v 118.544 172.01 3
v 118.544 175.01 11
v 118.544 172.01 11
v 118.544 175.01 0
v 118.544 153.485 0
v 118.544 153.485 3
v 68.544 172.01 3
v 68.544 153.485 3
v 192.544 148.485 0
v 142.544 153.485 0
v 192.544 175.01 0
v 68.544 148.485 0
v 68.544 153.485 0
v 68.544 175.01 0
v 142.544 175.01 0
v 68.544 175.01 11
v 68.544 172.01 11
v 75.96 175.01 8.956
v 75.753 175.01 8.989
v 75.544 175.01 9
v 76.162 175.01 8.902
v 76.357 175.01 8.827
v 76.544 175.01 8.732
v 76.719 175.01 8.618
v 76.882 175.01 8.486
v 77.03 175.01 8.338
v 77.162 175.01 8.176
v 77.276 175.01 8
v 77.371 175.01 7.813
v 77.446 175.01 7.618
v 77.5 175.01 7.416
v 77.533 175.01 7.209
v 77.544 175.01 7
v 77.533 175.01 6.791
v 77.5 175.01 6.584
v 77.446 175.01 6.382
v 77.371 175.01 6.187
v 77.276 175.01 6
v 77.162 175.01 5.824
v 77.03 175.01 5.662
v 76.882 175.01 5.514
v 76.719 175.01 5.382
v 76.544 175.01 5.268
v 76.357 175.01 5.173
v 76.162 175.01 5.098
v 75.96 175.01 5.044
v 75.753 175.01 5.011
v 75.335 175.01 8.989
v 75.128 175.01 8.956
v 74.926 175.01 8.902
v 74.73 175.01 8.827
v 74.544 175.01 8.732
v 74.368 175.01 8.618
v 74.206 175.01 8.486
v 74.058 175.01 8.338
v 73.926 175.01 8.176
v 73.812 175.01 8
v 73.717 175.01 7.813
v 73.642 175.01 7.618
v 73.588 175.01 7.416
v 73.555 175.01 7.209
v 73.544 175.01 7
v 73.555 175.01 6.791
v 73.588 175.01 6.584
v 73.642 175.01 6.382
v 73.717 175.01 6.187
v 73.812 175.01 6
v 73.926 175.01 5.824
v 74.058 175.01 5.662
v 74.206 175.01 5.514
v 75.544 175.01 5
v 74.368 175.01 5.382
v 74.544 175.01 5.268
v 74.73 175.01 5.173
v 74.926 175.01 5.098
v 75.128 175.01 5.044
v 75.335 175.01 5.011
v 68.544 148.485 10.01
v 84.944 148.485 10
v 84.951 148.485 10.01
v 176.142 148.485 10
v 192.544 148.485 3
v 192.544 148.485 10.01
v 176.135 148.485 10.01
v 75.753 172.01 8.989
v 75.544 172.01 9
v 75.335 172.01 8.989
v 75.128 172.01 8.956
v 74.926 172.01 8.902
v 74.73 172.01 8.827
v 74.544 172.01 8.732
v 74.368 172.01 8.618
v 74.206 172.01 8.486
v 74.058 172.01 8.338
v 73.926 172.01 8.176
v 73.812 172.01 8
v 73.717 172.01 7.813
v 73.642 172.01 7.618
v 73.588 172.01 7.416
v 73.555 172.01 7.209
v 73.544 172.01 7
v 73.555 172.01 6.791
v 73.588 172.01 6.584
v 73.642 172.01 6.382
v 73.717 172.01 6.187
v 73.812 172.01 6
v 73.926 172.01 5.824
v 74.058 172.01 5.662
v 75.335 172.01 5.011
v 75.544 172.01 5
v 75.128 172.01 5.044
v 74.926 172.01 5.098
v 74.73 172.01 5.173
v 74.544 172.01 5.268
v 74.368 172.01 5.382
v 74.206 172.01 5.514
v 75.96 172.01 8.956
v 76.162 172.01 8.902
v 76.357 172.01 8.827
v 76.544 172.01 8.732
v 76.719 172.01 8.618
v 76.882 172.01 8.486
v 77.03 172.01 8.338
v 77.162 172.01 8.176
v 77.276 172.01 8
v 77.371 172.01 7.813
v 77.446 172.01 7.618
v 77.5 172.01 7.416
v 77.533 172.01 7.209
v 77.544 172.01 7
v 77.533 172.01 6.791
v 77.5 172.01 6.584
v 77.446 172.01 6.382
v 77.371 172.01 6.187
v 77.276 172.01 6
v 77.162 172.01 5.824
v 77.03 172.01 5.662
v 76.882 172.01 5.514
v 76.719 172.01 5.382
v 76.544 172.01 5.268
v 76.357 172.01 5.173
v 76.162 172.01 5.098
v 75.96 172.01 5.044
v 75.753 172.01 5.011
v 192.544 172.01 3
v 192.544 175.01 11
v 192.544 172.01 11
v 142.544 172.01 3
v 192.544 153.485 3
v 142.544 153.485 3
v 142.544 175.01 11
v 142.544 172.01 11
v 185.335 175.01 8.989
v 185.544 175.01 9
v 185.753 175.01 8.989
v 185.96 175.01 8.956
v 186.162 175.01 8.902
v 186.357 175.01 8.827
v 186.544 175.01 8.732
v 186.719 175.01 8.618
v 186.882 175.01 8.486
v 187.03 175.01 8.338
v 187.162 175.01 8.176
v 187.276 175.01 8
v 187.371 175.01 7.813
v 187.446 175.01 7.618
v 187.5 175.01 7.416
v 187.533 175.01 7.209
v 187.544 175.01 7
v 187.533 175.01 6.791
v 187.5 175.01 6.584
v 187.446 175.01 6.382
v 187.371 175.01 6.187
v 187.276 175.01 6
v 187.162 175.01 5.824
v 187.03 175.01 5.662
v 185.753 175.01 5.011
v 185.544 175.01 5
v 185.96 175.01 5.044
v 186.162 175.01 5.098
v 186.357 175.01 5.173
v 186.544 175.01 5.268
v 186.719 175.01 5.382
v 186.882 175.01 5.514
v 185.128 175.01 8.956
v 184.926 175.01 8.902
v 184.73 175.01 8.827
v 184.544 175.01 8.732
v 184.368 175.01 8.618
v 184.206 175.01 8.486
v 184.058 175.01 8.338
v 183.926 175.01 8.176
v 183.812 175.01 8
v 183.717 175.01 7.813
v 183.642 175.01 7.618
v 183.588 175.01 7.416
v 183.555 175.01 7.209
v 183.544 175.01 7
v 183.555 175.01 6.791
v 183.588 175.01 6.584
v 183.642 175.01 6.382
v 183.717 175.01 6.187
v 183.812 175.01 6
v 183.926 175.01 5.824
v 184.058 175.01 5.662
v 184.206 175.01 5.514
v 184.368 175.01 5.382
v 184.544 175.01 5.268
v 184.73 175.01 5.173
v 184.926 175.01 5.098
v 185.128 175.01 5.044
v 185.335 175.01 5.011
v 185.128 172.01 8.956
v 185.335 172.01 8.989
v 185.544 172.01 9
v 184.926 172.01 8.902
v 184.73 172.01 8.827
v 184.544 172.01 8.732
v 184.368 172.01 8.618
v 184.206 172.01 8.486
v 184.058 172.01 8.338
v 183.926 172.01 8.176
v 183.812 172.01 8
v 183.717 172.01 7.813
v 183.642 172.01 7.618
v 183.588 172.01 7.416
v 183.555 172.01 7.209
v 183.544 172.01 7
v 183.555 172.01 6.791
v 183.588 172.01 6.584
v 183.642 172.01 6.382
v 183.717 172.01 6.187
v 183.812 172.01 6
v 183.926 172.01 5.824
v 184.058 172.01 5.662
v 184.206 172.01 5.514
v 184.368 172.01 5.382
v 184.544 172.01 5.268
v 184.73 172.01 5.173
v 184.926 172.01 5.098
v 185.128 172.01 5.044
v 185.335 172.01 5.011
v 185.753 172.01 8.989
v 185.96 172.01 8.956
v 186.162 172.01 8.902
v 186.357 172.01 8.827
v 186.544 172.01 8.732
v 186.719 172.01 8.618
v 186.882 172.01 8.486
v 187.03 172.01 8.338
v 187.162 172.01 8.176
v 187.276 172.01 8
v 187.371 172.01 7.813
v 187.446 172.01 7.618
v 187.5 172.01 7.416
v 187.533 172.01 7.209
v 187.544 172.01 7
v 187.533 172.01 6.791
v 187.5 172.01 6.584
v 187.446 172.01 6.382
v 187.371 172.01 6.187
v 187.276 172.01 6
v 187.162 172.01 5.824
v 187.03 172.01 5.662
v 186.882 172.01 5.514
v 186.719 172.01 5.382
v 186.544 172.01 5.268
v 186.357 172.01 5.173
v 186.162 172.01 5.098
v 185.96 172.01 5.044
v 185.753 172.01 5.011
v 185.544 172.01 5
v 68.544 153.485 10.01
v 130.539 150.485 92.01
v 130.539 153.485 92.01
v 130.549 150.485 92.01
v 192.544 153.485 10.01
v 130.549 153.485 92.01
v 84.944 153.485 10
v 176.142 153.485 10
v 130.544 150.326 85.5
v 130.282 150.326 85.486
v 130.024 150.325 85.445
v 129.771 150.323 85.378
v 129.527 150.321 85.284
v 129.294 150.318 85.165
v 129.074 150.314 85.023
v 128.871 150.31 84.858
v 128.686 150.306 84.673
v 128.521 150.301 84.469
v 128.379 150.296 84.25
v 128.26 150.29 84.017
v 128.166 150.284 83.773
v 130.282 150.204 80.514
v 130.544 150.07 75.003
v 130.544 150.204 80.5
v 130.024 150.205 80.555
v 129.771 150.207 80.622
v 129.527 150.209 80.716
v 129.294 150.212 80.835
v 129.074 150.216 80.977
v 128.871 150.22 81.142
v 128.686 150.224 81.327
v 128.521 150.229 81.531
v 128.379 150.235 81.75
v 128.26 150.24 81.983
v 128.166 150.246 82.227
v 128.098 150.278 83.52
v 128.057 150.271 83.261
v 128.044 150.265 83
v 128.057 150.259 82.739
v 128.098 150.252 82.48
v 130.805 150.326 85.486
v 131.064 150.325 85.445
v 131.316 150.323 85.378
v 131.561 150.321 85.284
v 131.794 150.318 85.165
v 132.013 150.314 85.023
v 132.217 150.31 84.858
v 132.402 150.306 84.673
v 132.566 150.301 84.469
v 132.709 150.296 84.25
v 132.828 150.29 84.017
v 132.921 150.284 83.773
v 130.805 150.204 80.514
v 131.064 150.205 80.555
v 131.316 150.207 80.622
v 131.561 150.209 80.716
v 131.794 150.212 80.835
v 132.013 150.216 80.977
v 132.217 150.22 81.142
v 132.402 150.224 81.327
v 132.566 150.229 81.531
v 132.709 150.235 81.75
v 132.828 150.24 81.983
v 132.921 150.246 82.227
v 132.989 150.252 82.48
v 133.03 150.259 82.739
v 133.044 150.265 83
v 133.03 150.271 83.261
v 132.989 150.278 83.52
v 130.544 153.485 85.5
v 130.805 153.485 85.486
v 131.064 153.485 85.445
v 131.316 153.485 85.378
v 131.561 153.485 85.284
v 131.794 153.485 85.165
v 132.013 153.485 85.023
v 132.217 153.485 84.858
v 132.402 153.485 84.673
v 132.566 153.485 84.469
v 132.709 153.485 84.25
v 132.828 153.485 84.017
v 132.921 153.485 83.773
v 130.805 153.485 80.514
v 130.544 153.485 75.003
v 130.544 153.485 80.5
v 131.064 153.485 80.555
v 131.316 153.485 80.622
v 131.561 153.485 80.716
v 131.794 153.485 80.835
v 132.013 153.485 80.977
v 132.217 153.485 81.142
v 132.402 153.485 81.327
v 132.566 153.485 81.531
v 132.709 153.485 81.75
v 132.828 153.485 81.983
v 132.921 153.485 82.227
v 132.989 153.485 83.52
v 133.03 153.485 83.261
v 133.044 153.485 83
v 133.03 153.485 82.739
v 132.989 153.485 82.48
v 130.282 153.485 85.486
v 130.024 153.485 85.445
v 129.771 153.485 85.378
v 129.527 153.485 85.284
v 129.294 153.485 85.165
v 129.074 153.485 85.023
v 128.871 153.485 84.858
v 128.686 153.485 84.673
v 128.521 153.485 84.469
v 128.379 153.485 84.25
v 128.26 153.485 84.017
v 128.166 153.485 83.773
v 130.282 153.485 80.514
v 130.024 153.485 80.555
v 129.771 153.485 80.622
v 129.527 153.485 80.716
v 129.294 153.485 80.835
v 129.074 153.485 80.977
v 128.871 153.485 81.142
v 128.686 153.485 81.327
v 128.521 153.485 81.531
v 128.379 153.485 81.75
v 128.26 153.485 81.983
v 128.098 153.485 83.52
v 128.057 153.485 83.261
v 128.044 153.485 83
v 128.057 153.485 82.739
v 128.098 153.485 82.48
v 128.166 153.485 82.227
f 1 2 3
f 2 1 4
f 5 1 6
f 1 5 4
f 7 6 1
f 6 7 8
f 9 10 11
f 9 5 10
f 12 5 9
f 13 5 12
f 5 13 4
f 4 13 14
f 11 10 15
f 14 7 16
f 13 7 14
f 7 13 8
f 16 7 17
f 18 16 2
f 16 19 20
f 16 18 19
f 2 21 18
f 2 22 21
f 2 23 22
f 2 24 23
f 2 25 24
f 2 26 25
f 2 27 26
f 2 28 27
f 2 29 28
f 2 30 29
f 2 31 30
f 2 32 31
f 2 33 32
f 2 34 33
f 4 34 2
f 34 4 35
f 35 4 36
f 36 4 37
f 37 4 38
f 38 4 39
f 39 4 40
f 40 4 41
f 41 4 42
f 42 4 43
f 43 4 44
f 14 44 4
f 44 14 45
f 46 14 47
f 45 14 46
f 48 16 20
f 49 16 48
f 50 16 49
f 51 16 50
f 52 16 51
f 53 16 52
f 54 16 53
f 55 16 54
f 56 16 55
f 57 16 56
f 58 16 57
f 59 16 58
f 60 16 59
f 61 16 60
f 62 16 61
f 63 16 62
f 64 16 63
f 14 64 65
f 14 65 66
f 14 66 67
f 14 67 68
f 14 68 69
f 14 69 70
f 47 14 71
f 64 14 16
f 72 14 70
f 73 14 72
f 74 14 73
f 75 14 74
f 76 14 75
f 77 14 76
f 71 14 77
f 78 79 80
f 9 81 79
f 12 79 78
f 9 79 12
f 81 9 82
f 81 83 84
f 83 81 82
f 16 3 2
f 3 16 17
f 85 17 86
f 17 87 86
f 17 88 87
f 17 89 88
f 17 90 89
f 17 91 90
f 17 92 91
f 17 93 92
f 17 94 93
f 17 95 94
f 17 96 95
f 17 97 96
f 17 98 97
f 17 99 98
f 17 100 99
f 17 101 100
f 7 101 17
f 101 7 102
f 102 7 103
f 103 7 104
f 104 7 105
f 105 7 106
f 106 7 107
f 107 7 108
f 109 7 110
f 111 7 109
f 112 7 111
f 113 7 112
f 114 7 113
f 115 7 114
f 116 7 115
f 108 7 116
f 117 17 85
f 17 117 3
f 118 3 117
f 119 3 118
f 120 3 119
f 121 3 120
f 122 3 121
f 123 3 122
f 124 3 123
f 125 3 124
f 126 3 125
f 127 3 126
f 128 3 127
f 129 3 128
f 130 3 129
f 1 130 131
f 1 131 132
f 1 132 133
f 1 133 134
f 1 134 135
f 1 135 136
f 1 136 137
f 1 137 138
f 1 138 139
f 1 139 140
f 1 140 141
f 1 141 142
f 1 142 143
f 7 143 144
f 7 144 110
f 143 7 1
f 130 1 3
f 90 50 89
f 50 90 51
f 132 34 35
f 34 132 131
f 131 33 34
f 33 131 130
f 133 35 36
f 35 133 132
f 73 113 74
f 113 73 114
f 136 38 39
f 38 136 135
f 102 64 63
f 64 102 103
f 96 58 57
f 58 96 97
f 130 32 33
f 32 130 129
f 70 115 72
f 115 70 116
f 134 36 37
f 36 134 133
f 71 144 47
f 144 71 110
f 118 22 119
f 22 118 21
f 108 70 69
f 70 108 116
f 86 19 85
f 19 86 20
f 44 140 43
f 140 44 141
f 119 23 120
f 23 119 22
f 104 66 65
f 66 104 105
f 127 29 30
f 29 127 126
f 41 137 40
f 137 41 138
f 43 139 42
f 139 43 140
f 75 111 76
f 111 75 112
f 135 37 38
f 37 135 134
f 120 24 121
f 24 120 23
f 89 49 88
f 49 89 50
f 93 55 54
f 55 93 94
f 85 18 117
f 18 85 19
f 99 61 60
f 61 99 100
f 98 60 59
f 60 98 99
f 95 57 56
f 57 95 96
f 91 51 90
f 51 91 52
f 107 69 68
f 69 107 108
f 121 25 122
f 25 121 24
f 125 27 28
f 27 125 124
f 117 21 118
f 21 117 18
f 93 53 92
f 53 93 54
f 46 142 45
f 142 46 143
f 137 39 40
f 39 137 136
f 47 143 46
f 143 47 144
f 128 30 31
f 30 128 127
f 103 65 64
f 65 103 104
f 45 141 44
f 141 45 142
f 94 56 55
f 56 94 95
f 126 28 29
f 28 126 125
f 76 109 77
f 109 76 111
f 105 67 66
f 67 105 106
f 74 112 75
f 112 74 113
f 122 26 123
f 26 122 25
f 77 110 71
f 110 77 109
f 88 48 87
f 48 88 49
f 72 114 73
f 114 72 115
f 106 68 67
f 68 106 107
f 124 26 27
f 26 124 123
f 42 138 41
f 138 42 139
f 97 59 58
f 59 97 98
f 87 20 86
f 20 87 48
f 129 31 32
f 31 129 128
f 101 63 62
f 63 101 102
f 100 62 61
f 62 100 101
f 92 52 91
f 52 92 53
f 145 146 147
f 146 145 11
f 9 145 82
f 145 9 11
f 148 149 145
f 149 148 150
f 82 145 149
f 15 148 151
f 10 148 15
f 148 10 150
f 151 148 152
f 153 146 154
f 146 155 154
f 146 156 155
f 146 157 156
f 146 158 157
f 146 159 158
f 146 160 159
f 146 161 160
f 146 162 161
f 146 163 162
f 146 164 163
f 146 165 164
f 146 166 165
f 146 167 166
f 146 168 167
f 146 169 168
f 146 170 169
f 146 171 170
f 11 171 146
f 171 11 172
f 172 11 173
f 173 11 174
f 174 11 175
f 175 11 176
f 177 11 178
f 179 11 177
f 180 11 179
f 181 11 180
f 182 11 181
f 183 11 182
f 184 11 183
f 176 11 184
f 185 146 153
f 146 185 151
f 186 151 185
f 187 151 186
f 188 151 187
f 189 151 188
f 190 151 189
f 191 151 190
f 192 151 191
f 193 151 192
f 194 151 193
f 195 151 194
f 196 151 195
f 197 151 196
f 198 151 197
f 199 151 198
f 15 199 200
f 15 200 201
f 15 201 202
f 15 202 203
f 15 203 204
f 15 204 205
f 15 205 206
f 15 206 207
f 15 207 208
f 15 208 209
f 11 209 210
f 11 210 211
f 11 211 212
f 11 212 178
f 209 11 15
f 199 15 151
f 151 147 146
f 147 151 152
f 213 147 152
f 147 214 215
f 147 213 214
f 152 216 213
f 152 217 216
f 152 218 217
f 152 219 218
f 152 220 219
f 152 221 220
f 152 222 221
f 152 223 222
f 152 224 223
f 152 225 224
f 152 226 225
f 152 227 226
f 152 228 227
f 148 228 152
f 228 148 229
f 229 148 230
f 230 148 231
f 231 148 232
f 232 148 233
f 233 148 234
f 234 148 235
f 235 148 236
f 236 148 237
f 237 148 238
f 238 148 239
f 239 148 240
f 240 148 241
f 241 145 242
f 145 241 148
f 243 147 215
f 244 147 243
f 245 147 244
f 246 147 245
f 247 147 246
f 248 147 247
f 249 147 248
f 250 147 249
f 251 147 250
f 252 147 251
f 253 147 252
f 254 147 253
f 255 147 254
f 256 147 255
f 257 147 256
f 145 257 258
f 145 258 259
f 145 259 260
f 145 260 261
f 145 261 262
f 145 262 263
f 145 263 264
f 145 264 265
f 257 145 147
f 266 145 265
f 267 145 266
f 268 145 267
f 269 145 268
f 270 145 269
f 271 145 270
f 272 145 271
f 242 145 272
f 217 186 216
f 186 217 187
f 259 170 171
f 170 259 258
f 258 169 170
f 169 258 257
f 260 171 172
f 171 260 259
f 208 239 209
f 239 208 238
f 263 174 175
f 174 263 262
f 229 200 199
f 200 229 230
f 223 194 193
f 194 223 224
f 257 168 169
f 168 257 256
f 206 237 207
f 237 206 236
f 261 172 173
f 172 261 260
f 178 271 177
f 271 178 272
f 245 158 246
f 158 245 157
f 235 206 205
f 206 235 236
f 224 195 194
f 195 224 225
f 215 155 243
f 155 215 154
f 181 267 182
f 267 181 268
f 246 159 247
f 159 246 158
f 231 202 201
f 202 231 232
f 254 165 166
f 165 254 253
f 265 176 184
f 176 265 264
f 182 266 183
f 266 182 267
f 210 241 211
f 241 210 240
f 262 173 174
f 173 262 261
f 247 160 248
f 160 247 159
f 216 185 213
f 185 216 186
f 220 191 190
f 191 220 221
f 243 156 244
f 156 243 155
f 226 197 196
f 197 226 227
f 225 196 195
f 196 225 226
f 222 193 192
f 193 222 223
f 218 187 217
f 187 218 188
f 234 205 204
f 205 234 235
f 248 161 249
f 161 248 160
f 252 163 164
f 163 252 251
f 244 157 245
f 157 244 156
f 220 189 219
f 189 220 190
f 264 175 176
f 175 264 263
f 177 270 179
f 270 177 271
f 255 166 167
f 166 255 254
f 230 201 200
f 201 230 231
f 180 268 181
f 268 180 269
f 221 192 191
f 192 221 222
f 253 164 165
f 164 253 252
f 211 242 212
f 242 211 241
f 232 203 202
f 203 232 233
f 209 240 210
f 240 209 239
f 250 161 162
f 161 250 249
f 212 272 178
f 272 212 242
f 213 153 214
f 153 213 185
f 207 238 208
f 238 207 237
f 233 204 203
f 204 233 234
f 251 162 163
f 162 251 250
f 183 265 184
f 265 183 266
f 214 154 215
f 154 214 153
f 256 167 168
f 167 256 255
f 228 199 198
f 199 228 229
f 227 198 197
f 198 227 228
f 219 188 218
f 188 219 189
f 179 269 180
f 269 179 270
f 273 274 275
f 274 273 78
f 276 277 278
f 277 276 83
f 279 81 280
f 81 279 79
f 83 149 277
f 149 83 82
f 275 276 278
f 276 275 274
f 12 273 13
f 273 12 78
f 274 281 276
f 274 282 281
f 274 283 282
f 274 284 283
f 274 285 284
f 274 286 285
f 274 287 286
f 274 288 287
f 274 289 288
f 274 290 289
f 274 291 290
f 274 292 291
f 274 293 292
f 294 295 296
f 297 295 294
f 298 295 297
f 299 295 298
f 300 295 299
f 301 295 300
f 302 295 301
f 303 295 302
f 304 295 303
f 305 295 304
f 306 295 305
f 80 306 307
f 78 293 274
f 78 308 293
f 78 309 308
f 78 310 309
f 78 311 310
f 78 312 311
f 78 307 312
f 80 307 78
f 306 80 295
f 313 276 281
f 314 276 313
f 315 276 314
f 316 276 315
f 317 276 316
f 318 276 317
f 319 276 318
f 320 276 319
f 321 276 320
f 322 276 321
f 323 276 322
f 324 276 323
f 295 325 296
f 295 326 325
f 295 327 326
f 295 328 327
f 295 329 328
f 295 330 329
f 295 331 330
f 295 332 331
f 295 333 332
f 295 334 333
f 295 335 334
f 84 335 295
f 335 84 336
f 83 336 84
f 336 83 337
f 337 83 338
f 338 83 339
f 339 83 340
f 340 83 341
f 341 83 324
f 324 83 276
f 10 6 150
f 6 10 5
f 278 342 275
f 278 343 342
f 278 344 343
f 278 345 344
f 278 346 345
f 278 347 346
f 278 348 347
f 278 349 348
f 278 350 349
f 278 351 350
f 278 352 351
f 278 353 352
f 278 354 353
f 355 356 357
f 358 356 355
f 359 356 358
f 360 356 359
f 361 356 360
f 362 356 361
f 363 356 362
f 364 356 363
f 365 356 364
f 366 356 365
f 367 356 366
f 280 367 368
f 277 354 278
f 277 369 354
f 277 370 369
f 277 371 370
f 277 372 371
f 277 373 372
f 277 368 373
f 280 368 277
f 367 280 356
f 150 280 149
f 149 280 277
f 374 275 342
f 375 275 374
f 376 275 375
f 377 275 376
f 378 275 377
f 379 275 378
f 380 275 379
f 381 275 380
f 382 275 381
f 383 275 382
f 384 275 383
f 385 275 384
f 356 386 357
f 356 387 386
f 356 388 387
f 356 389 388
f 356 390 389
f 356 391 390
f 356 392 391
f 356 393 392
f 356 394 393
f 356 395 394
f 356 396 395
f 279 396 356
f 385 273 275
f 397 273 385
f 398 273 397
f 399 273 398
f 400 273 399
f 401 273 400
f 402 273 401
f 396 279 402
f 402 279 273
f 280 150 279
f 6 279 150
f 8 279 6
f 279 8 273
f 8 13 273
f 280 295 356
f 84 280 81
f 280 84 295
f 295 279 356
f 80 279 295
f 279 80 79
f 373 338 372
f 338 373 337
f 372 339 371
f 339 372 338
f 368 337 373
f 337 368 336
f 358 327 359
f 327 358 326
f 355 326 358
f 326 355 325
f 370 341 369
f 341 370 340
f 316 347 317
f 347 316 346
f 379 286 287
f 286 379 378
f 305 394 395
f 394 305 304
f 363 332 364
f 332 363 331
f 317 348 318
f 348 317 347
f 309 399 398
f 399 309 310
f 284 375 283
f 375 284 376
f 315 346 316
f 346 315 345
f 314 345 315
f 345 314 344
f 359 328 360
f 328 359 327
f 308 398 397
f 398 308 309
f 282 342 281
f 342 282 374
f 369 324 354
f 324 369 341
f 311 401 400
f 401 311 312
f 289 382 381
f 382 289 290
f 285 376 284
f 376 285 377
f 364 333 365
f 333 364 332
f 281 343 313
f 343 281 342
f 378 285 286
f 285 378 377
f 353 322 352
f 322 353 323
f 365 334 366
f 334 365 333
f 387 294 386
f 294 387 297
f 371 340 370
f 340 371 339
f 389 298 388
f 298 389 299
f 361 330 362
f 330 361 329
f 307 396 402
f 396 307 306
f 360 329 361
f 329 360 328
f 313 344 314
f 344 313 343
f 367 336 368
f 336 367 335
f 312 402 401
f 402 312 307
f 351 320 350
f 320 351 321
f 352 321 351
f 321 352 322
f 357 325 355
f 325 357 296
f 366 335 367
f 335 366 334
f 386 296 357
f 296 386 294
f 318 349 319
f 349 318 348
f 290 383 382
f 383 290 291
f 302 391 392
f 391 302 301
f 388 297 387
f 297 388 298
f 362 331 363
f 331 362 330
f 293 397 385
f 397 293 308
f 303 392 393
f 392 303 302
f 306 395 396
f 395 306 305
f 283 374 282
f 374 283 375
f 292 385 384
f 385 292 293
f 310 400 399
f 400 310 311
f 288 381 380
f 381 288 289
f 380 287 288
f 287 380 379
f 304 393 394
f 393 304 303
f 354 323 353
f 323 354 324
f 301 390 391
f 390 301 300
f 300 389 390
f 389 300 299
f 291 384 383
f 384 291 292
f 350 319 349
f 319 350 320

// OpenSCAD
meus_pontos = [[68.5438, 48.9848, 10.0], [68.5438, 49.0098, 0.0], [68.5438, 53.4848, 10.0], [68.5438, 53.5098, 3.0], [68.5438, 72.0098, 3.0], [68.5438, 72.0098, 11.0], [68.5438, 75.0098, 0.0], [68.5438, 75.0098, 11.0], [73.5408, 72.0098, 7.0], [73.5408, 75.0098, 7.0], [73.5588, 72.0098, 6.739], [73.5588, 72.0098, 7.261], [73.5588, 75.0098, 6.739], [73.5588, 75.0098, 7.261], [73.6098, 72.0098, 6.482], [73.6098, 72.0098, 7.518], [73.6098, 75.0098, 6.482], [73.6098, 75.0098, 7.518], [73.6938, 72.0098, 6.234], [73.6938, 72.0098, 7.766], [73.6938, 75.0098, 6.234], [73.6938, 75.0098, 7.766], [73.8098, 72.0098, 5.999], [73.8098, 72.0098, 8.001], [73.8098, 75.0098, 5.999], [73.8098, 75.0098, 8.001], [73.9548, 72.0098, 5.781], [73.9548, 72.0098, 8.219], [73.9548, 75.0098, 5.781], [73.9548, 75.0098, 8.219], [74.1278, 72.0098, 5.584], [74.1278, 72.0098, 8.416], [74.1278, 75.0098, 5.584], [74.1278, 75.0098, 8.416], [74.3248, 72.0098, 5.411], [74.3248, 72.0098, 8.589], [74.3248, 75.0098, 5.411], [74.3248, 75.0098, 8.589], [74.5428, 72.0098, 5.266], [74.5428, 72.0098, 8.734], [74.5428, 75.0098, 5.266], [74.5428, 75.0098, 8.734], [74.7778, 72.0098, 5.15], [74.7778, 72.0098, 8.85], [74.7778, 75.0098, 5.15], [74.7778, 75.0098, 8.85], [75.0258, 72.0098, 5.066], [75.0258, 72.0098, 8.934], [75.0258, 75.0098, 5.066], [75.0258, 75.0098, 8.934], [75.2828, 72.0098, 5.015], [75.2828, 72.0098, 8.985], [75.2828, 75.0098, 5.015], [75.2828, 75.0098, 8.985], [75.5438, 72.0098, 4.998], [75.5438, 72.0098, 9.003], [75.5438, 75.0098, 4.998], [75.5438, 75.0098, 9.003], [75.8048, 72.0098, 5.015], [75.8048, 72.0098, 8.985], [75.8048, 75.0098, 5.015], [75.8048, 75.0098, 8.985], [76.0618, 72.0098, 5.066], [76.0618, 72.0098, 8.934], [76.0618, 75.0098, 5.066], [76.0618, 75.0098, 8.934], [76.3098, 72.0098, 5.15], [76.3098, 72.0098, 8.85], [76.3098, 75.0098, 5.15], [76.3098, 75.0098, 8.85], [76.5448, 72.0098, 5.266], [76.5448, 72.0098, 8.734], [76.5448, 75.0098, 5.266], [76.5448, 75.0098, 8.734], [76.7628, 72.0098, 5.411], [76.7628, 72.0098, 8.589], [76.7628, 75.0098, 5.411], [76.7628, 75.0098, 8.589], [76.9598, 72.0098, 5.584], [76.9598, 72.0098, 8.416], [76.9598, 75.0098, 5.584], [76.9598, 75.0098, 8.416], [77.1328, 72.0098, 5.781], [77.1328, 72.0098, 8.219], [77.1328, 75.0098, 5.781], [77.1328, 75.0098, 8.219], [77.2778, 72.0098, 5.999], [77.2778, 72.0098, 8.001], [77.2778, 75.0098, 5.999], [77.2778, 75.0098, 8.001], [77.3938, 72.0098, 6.234], [77.3938, 72.0098, 7.766], [77.3938, 75.0098, 6.234], [77.3938, 75.0098, 7.766], [77.4778, 72.0098, 6.482], [77.4778, 72.0098, 7.518], [77.4778, 75.0098, 6.482], [77.4778, 75.0098, 7.518], [77.5288, 72.0098, 6.739], [77.5288, 72.0098, 7.261], [77.5288, 75.0098, 6.739], [77.5288, 75.0098, 7.261], [77.5458, 72.0098, 7.0], [77.5458, 75.0098, 7.0], [83.5408, 49.0098, 9.998], [83.5408, 53.5098, 9.998], [118.5438, 53.5098, 0.0], [118.5438, 53.5098, 3.0], [118.5438, 72.0098, 3.0], [118.5438, 72.0098, 11.0], [118.5438, 75.0098, 0.0], [118.5438, 75.0098, 11.0], [128.0408, 50.3202, 83.0], [128.0408, 53.4848, 83.0], [128.0628, 50.3154, 82.739], [128.0628, 50.3249, 83.261], [128.0628, 53.4848, 82.739], [128.0628, 53.4848, 83.261], [128.1268, 50.3107, 82.482], [128.1268, 50.3296, 83.518], [128.1268, 53.4848, 82.482], [128.1268, 53.4848, 83.518], [128.2318, 50.3062, 82.234], [128.2318, 50.3342, 83.766], [128.2318, 53.4848, 82.234], [128.2318, 53.4848, 83.766], [128.3768, 50.3019, 81.999], [128.3768, 50.3385, 84.001], [128.3768, 53.4848, 81.999], [128.3768, 53.4848, 84.001], [128.5588, 50.2979, 81.781], [128.5588, 50.3425, 84.219], [128.5588, 53.4848, 81.781], [128.5588, 53.4848, 84.219], [128.7738, 50.2943, 81.584], [128.7738, 50.3461, 84.416], [128.7738, 53.4848, 81.584], [128.7738, 53.4848, 84.416], [129.0208, 50.2911, 81.411], [129.0208, 50.3492, 84.589], [129.0208, 53.4848, 81.411], [129.0208, 53.4848, 84.589], [129.2928, 50.2884, 81.266], [129.2928, 50.3519, 84.734], [129.2928, 53.4848, 81.266], [129.2928, 53.4848, 84.734], [129.5858, 50.2863, 81.15], [129.5858, 50.354, 84.85], [129.5858, 53.4848, 81.15], [129.5858, 53.4848, 84.85], [129.8958, 50.2848, 81.066], [129.8958, 50.3555, 84.934], [129.8958, 53.4848, 81.066], [129.8958, 53.4848, 84.934], [130.2168, 50.2839, 81.015], [130.2168, 50.3565, 84.985], [130.2168, 53.4848, 81.015], [130.2168, 53.4848, 84.985], [130.5438, 50.1739, 75.003], [130.5438, 50.2835, 80.998], [130.5438, 50.3568, 85.003], [130.5438, 50.4848, 92.0], [130.5438, 53.4848, 75.003], [130.5438, 53.4848, 80.998], [130.5438, 53.4848, 85.003], [130.5438, 53.4848, 92.0], [130.8708, 50.2839, 81.015], [130.8708, 50.3565, 84.985], [130.8708, 53.4848, 81.015], [130.8708, 53.4848, 84.985], [131.1918, 50.2848, 81.066], [131.1918, 50.3555, 84.934], [131.1918, 53.4848, 81.066], [131.1918, 53.4848, 84.934], [131.5018, 50.2863, 81.15], [131.5018, 50.354, 84.85], [131.5018, 53.4848, 81.15], [131.5018, 53.4848, 84.85], [131.7948, 50.2884, 81.266], [131.7948, 50.3519, 84.734], [131.7948, 53.4848, 81.266], [131.7948, 53.4848, 84.734], [132.0668, 50.2911, 81.411], [132.0668, 50.3492, 84.589], [132.0668, 53.4848, 81.411], [132.0668, 53.4848, 84.589], [132.3138, 50.2943, 81.584], [132.3138, 50.3461, 84.416], [132.3138, 53.4848, 81.584], [132.3138, 53.4848, 84.416], [132.5288, 50.2979, 81.781], [132.5288, 50.3425, 84.219], [132.5288, 53.4848, 81.781], [132.5288, 53.4848, 84.219], [132.7108, 50.3019, 81.999], [132.7108, 50.3385, 84.001], [132.7108, 53.4848, 81.999], [132.7108, 53.4848, 84.001], [132.8558, 50.3062, 82.234], [132.8558, 50.3342, 83.766], [132.8558, 53.4848, 82.234], [132.8558, 53.4848, 83.766], [132.9608, 50.3107, 82.482], [132.9608, 50.3296, 83.518], [132.9608, 53.4848, 82.482], [132.9608, 53.4848, 83.518], [133.0248, 50.3154, 82.739], [133.0248, 50.3249, 83.261], [133.0248, 53.4848, 82.739], [133.0248, 53.4848, 83.261], [133.0468, 50.3202, 83.0], [133.0468, 53.4848, 83.0], [142.5438, 53.5098, 0.0], [142.5438, 53.5098, 3.0], [142.5438, 72.0098, 3.0], [142.5438, 72.0098, 11.0], [142.5438, 75.0098, 0.0], [142.5438, 75.0098, 11.0], [177.5453, 48.9848, 10.0], [177.5453, 53.4848, 10.0], [183.5418, 72.0098, 3.0], [183.5418, 72.0098, 7.0], [183.5418, 75.0098, 7.0], [183.5588, 72.0098, 6.739], [183.5588, 72.0098, 7.261], [183.5588, 75.0098, 6.739], [183.5588, 75.0098, 7.261], [183.6098, 72.0098, 6.482], [183.6098, 72.0098, 7.518], [183.6098, 75.0098, 6.482], [183.6098, 75.0098, 7.518], [183.6938, 72.0098, 6.234], [183.6938, 72.0098, 7.766], [183.6938, 75.0098, 6.234], [183.6938, 75.0098, 7.766], [183.8098, 72.0098, 5.999], [183.8098, 72.0098, 8.001], [183.8098, 75.0098, 5.999], [183.8098, 75.0098, 8.001], [183.9548, 72.0098, 5.781], [183.9548, 72.0098, 8.219], [183.9548, 75.0098, 5.781], [183.9548, 75.0098, 8.219], [184.1278, 72.0098, 5.584], [184.1278, 72.0098, 8.416], [184.1278, 75.0098, 5.584], [184.1278, 75.0098, 8.416], [184.3248, 72.0098, 5.411], [184.3248, 72.0098, 8.589], [184.3248, 75.0098, 5.411], [184.3248, 75.0098, 8.589], [184.5428, 72.0098, 5.266], [184.5428, 72.0098, 8.734], [184.5428, 75.0098, 5.266], [184.5428, 75.0098, 8.734], [184.7778, 72.0098, 5.15], [184.7778, 72.0098, 8.85], [184.7778, 75.0098, 5.15], [184.7778, 75.0098, 8.85], [185.0258, 72.0098, 5.066], [185.0258, 72.0098, 8.934], [185.0258, 75.0098, 5.066], [185.0258, 75.0098, 8.934], [185.2828, 72.0098, 5.015], [185.2828, 72.0098, 8.985], [185.2828, 75.0098, 5.015], [185.2828, 75.0098, 8.985], [185.5438, 72.0098, 4.998], [185.5438, 72.0098, 9.003], [185.5438, 75.0098, 4.998], [185.5438, 75.0098, 9.003], [185.8048, 72.0098, 5.015], [185.8048, 72.0098, 8.985], [185.8048, 75.0098, 5.015], [185.8048, 75.0098, 8.985], [186.0618, 72.0098, 5.066], [186.0618, 72.0098, 8.934], [186.0618, 75.0098, 5.066], [186.0618, 75.0098, 8.934], [186.3098, 72.0098, 5.15], [186.3098, 72.0098, 8.85], [186.3098, 75.0098, 5.15], [186.3098, 75.0098, 8.85], [186.5448, 72.0098, 5.266], [186.5448, 72.0098, 8.734], [186.5448, 75.0098, 5.266], [186.5448, 75.0098, 8.734], [186.7628, 72.0098, 5.411], [186.7628, 72.0098, 8.589], [186.7628, 75.0098, 5.411], [186.7628, 75.0098, 8.589], [186.9598, 72.0098, 5.584], [186.9598, 72.0098, 8.416], [186.9598, 75.0098, 5.584], [186.9598, 75.0098, 8.416], [187.1328, 72.0098, 5.781], [187.1328, 72.0098, 8.219], [187.1328, 75.0098, 5.781], [187.1328, 75.0098, 8.219], [187.2778, 72.0098, 5.999], [187.2778, 72.0098, 8.001], [187.2778, 75.0098, 5.999], [187.2778, 75.0098, 8.001], [187.3938, 72.0098, 6.234], [187.3938, 72.0098, 7.766], [187.3938, 75.0098, 6.234], [187.3938, 75.0098, 7.766], [187.4778, 72.0098, 6.482], [187.4778, 72.0098, 7.518], [187.4778, 75.0098, 6.482], [187.4778, 75.0098, 7.518], [187.5288, 72.0098, 6.739], [187.5288, 72.0098, 7.261], [187.5288, 75.0098, 6.739], [187.5288, 75.0098, 7.261], [187.5468, 72.0098, 7.0], [187.5468, 75.0098, 7.0], [192.5438, 48.9848, 10.0], [192.5438, 49.0098, 0.0], [192.5438, 53.4848, 10.0], [192.5438, 53.5098, 3.0], [192.5438, 72.0098, 3.0], [192.5438, 72.0098, 11.0], [192.5438, 75.0098, 0.0], [192.5438, 75.0098, 11.0]];;;

minhas_faces = [[321, 324, 322], [323, 324, 321], [256, 260, 215], [252, 256, 215], [244, 248, 215], [203, 199, 205], [207, 203, 205], [190, 186, 317], [240, 244, 215], [186, 182, 317], [182, 178, 317], [320, 323, 321], [319, 317, 320], [317, 318, 320], [318, 323, 320], [4, 7, 6], [5, 7, 4], [6, 1, 3], [3, 4, 6], [3, 0, 2], [1, 0, 3], [215, 324, 217], [322, 324, 215], [268, 264, 266], [202, 206, 204], [108, 111, 109], [5, 111, 7], [109, 111, 5], [264, 260, 266], [198, 202, 204], [140, 144, 2], [248, 244, 246], [132, 136, 2], [244, 240, 246], [156, 152, 150], [128, 132, 2], [2, 124, 128], [148, 150, 152], [120, 2, 116], [2, 120, 124], [148, 144, 146], [121, 117, 2], [117, 113, 2], [125, 121, 2], [129, 125, 165], [165, 137, 133], [165, 133, 129], [165, 141, 137], [174, 170, 158], [220, 214, 213], [220, 213, 320], [320, 321, 220], [151, 155, 161], [110, 111, 108], [106, 110, 108], [107, 106, 108], [179, 183, 161], [58, 4, 108], [183, 187, 161], [187, 191, 161], [195, 199, 161], [199, 203, 317], [195, 161, 191], [4, 26, 22], [203, 207, 317], [30, 26, 4], [207, 210, 317], [38, 34, 4], [206, 202, 317], [46, 42, 4], [189, 193, 191], [202, 198, 317], [198, 194, 317], [195, 191, 193], [193, 197, 195], [194, 190, 317], [195, 201, 199], [197, 201, 195], [5, 19, 23], [205, 199, 201], [155, 160, 161], [160, 167, 161], [171, 175, 161], [161, 167, 171], [161, 175, 179], [11, 15, 5], [205, 209, 207], [317, 210, 206], [178, 174, 158], [170, 166, 158], [317, 161, 199], [210, 207, 209], [209, 211, 210], [8, 5, 4], [210, 208, 206], [211, 208, 210], [166, 159, 158], [159, 154, 158], [146, 142, 158], [218, 317, 158], [4, 22, 18], [4, 14, 10], [204, 206, 208], [0, 112, 115], [161, 0, 123], [204, 200, 198], [317, 165, 161], [317, 319, 165], [70, 108, 74], [70, 66, 108], [0, 161, 165], [165, 2, 0], [78, 74, 108], [86, 82, 108], [90, 86, 108], [108, 94, 90], [108, 98, 94], [194, 198, 200], [200, 196, 194], [192, 194, 196], [162, 158, 104], [218, 158, 162], [162, 219, 218], [104, 105, 162], [110, 72, 76], [112, 114, 113], [110, 76, 80], [113, 115, 112], [110, 80, 84], [110, 84, 88], [310, 304, 306], [302, 306, 304], [304, 300, 302], [123, 129, 127], [110, 92, 96], [110, 88, 92], [129, 131, 127], [302, 296, 298], [302, 300, 296], [110, 96, 100], [110, 100, 103], [294, 292, 288], [103, 111, 110], [288, 284, 286], [286, 290, 288], [284, 280, 282], [282, 286, 284], [146, 144, 142], [138, 142, 144], [144, 140, 138], [276, 278, 282], [282, 280, 276], [165, 145, 141], [61, 57, 7], [61, 7, 111], [272, 278, 276], [274, 278, 272], [109, 99, 102], [272, 268, 270], [270, 274, 272], [138, 136, 134], [140, 136, 138], [7, 49, 45], [270, 268, 266], [41, 7, 45], [67, 109, 63], [37, 33, 7], [266, 260, 262], [109, 59, 63], [59, 109, 5], [29, 7, 33], [7, 25, 21], [256, 262, 260], [258, 262, 256], [85, 81, 111], [256, 252, 254], [254, 258, 256], [162, 180, 184], [162, 176, 180], [162, 172, 176], [252, 248, 250], [250, 254, 252], [73, 69, 111], [81, 77, 111], [31, 35, 5], [246, 250, 248], [111, 69, 65], [111, 65, 61], [111, 77, 73], [153, 149, 165], [157, 153, 165], [246, 240, 242], [5, 23, 27], [27, 31, 5], [53, 7, 57], [53, 49, 7], [7, 41, 37], [101, 111, 103], [97, 111, 101], [111, 97, 93], [89, 111, 93], [111, 89, 85], [236, 242, 240], [109, 83, 87], [177, 173, 165], [109, 79, 83], [6, 48, 52], [6, 56, 60], [109, 75, 79], [294, 298, 296], [296, 292, 294], [109, 67, 71], [288, 290, 294], [7, 17, 13], [12, 7, 9], [12, 16, 6], [16, 20, 6], [44, 48, 6], [5, 35, 39], [43, 5, 39], [47, 5, 43], [47, 51, 5], [51, 55, 5], [5, 55, 59], [54, 58, 60], [238, 242, 236], [185, 181, 165], [62, 60, 58], [109, 71, 75], [109, 87, 91], [109, 91, 95], [109, 95, 99], [102, 108, 109], [108, 102, 98], [234, 238, 236], [201, 197, 165], [108, 82, 78], [108, 66, 62], [108, 62, 58], [58, 54, 4], [54, 50, 4], [201, 165, 319], [319, 205, 201], [4, 50, 46], [4, 42, 38], [4, 34, 30], [4, 18, 14], [4, 10, 8], [5, 8, 11], [5, 15, 19], [230, 224, 226], [60, 64, 6], [292, 296, 322], [110, 64, 68], [200, 204, 319], [222, 226, 224], [215, 248, 252], [215, 260, 264], [264, 322, 215], [322, 268, 272], [219, 196, 200], [24, 28, 6], [6, 7, 12], [165, 197, 193], [165, 193, 189], [165, 189, 185], [165, 181, 177], [165, 173, 169], [169, 164, 165], [164, 157, 165], [165, 149, 145], [32, 36, 6], [36, 40, 6], [20, 24, 6], [219, 184, 188], [219, 188, 192], [192, 196, 219], [204, 208, 319], [319, 219, 200], [211, 319, 208], [209, 319, 211], [319, 209, 205], [2, 162, 105], [28, 32, 6], [40, 44, 6], [2, 136, 140], [144, 148, 162], [148, 152, 162], [162, 2, 144], [162, 152, 156], [162, 156, 163], [162, 163, 168], [162, 168, 172], [184, 219, 162], [52, 56, 6], [21, 17, 7], [7, 29, 25], [2, 165, 125], [2, 113, 116], [13, 9, 7], [138, 158, 142], [138, 134, 104], [158, 150, 146], [134, 130, 104], [130, 126, 104], [104, 158, 138], [110, 68, 72], [273, 275, 277], [122, 118, 0], [122, 0, 104], [275, 281, 277], [118, 114, 0], [104, 126, 122], [114, 112, 0], [130, 134, 136], [136, 132, 130], [69, 63, 65], [132, 128, 130], [115, 119, 0], [119, 123, 0], [30, 32, 28], [130, 128, 126], [131, 135, 161], [30, 34, 32], [126, 124, 122], [128, 124, 126], [135, 139, 161], [139, 143, 161], [123, 127, 161], [118, 122, 124], [124, 120, 118], [143, 147, 161], [147, 151, 161], [161, 127, 131], [118, 116, 114], [120, 116, 118], [158, 317, 178], [28, 24, 22], [154, 150, 158], [116, 113, 114], [113, 117, 115], [119, 115, 117], [117, 121, 119], [119, 125, 123], [121, 125, 119], [216, 323, 212], [106, 6, 110], [129, 123, 125], [1, 6, 106], [44, 46, 48], [106, 318, 1], [212, 318, 106], [323, 318, 212], [129, 133, 131], [48, 46, 50], [218, 104, 1], [104, 0, 1], [218, 1, 318], [318, 317, 218], [214, 215, 217], [217, 216, 214], [212, 214, 216], [213, 214, 212], [293, 289, 287], [23, 25, 29], [23, 29, 27], [21, 25, 23], [135, 131, 133], [133, 137, 135], [139, 135, 137], [137, 141, 139], [261, 263, 265], [17, 11, 13], [143, 139, 141], [141, 145, 143], [265, 263, 269], [243, 239, 220], [8, 13, 11], [9, 13, 8], [145, 149, 143], [12, 9, 8], [255, 251, 220], [251, 247, 220], [154, 163, 156], [159, 163, 154], [291, 297, 293], [150, 154, 156], [236, 240, 215], [146, 150, 148], [24, 20, 22], [215, 228, 232], [215, 232, 236], [305, 307, 309], [215, 224, 228], [192, 190, 194], [307, 313, 309], [192, 188, 186], [186, 190, 192], [72, 74, 76], [188, 184, 182], [182, 186, 188], [74, 80, 76], [235, 231, 215], [180, 182, 184], [178, 182, 180], [180, 176, 174], [174, 178, 180], [172, 174, 176], [170, 174, 172], [8, 10, 12], [88, 90, 92], [172, 168, 166], [166, 170, 172], [16, 12, 10], [10, 14, 16], [321, 283, 279], [163, 166, 168], [159, 166, 163], [16, 18, 20], [14, 18, 16], [321, 287, 283], [147, 143, 149], [22, 20, 18], [96, 98, 100], [147, 153, 151], [149, 153, 147], [155, 151, 153], [153, 157, 155], [98, 102, 103], [103, 100, 98], [66, 68, 64], [220, 263, 259], [164, 155, 157], [160, 155, 164], [102, 101, 103], [72, 68, 66], [66, 70, 72], [169, 160, 164], [167, 160, 169], [101, 95, 97], [74, 72, 70], [169, 173, 171], [171, 167, 169], [78, 80, 74], [95, 93, 97], [177, 171, 173], [175, 171, 177], [84, 80, 78], [78, 82, 84], [93, 87, 89], [299, 295, 321], [84, 86, 88], [82, 86, 84], [89, 87, 83], [179, 175, 177], [177, 181, 179], [321, 311, 307], [307, 303, 321], [183, 179, 181], [181, 185, 183], [90, 88, 86], [61, 65, 63], [183, 189, 187], [185, 189, 183], [92, 94, 96], [90, 94, 92], [189, 191, 187], [304, 308, 322], [98, 96, 94], [300, 304, 322], [296, 300, 322], [322, 308, 312], [322, 312, 315], [315, 321, 322], [321, 315, 311], [102, 99, 101], [49, 43, 45], [95, 101, 99], [288, 292, 322], [321, 303, 299], [291, 321, 295], [291, 287, 321], [321, 279, 275], [321, 275, 220], [271, 220, 275], [271, 267, 220], [220, 267, 263], [220, 259, 255], [41, 45, 43], [95, 91, 93], [322, 280, 284], [322, 284, 288], [87, 93, 91], [220, 247, 243], [239, 235, 215], [215, 231, 227], [227, 223, 215], [223, 221, 215], [215, 221, 224], [215, 220, 239], [214, 220, 215], [322, 276, 280], [322, 272, 276], [264, 268, 322], [29, 33, 27], [234, 230, 217], [61, 63, 59], [83, 85, 89], [83, 81, 85], [55, 57, 61], [61, 59, 55], [226, 222, 217], [53, 57, 55], [55, 51, 53], [4, 3, 107], [107, 108, 4], [49, 53, 51], [51, 47, 49], [110, 6, 64], [47, 43, 49], [213, 212, 106], [213, 106, 107], [107, 219, 213], [219, 319, 320], [219, 320, 213], [105, 219, 107], [105, 107, 3], [3, 2, 105], [237, 241, 216], [233, 237, 216], [43, 39, 41], [104, 218, 219], [219, 105, 104], [41, 35, 37], [39, 35, 41], [249, 253, 216], [37, 35, 31], [31, 33, 37], [27, 33, 31], [216, 253, 257], [83, 79, 81], [281, 285, 323], [75, 77, 81], [81, 79, 75], [75, 71, 73], [73, 77, 75], [323, 289, 293], [73, 71, 67], [67, 69, 73], [261, 265, 323], [216, 257, 261], [69, 67, 63], [265, 269, 323], [54, 60, 56], [293, 297, 323], [60, 62, 64], [297, 301, 323], [64, 62, 66], [305, 309, 323], [313, 316, 324], [22, 26, 28], [28, 26, 30], [310, 306, 324], [32, 34, 36], [36, 38, 40], [34, 38, 36], [44, 40, 38], [38, 42, 44], [286, 282, 324], [282, 278, 324], [290, 286, 324], [42, 46, 44], [50, 52, 48], [274, 270, 324], [56, 52, 50], [50, 54, 56], [258, 254, 217], [254, 250, 217], [23, 19, 21], [250, 246, 217], [217, 262, 258], [19, 15, 17], [17, 21, 19], [246, 242, 217], [11, 17, 15], [238, 217, 242], [238, 234, 217], [230, 226, 217], [298, 294, 324], [324, 294, 290], [278, 274, 324], [266, 324, 270], [266, 262, 217], [217, 324, 266], [313, 324, 323], [314, 324, 316], [310, 324, 314], [302, 324, 306], [302, 298, 324], [269, 273, 323], [273, 277, 323], [277, 281, 323], [285, 289, 323], [323, 216, 261], [323, 301, 305], [323, 309, 313], [222, 225, 216], [225, 229, 216], [229, 233, 216], [241, 245, 216], [216, 217, 222], [245, 249, 216], [235, 237, 231], [239, 237, 235], [241, 237, 239], [239, 243, 245], [245, 241, 239], [245, 247, 249], [243, 247, 245], [253, 249, 247], [247, 251, 253], [253, 255, 257], [251, 255, 253], [255, 259, 261], [232, 234, 236], [232, 228, 230], [230, 234, 232], [224, 230, 228], [222, 224, 221], [222, 221, 223], [223, 225, 222], [229, 225, 223], [223, 227, 229], [229, 227, 231], [231, 233, 229], [233, 231, 237], [269, 271, 273], [267, 271, 269], [275, 273, 271], [275, 279, 281], [281, 279, 283], [283, 285, 281], [289, 285, 283], [283, 287, 289], [287, 291, 293], [261, 257, 255], [263, 261, 259], [263, 267, 269], [295, 297, 291], [301, 297, 295], [295, 299, 301], [301, 299, 303], [303, 305, 301], [307, 305, 303], [311, 313, 307], [311, 315, 316], [316, 313, 311], [316, 312, 314], [315, 312, 316], [314, 312, 308], [308, 310, 314], [308, 304, 310]];




// =========================================================
// RECONSTRUÇÃO MANUAL (LADO A LADO)
// Transladado em Y=+100 para não sobrepor com a original!
// =========================================================

    // VARIÁVEIS MATEMÁTICAS GLOBAIS (Alinhamento perfeito)
    // Travando o eixo Y da parede traseira no Ponto 2
    Y_TRASEIRO = meus_pontos[2][1];
    ESPESSURA = 5.0;
    Y_FRONTAL = Y_TRASEIRO - ESPESSURA;
    LARGURA_BRACO = meus_pontos[110][0] - meus_pontos[6][0]; // 50.0mm exatos!



    // =========================================================
    // MÓDULO DO BRAÇO (Permite duplicar para o lado direito)
    // =========================================================
    module braco(hole_x) {
        difference() {
            union() {
                // 2. Base Laranja
                color("darkorange", alpha=0.8)
                translate([0, Y_FRONTAL, meus_pontos[1][2]]) 
                    cube([
                        LARGURA_BRACO,
                        meus_pontos[6][1] - Y_FRONTAL,           // Comprimento Y
                        3.0                                      // Altura Z
                    ]);

                // 3. Dente Frontal Carmesim
                color("crimson", alpha=0.8)
                translate([
                    0,
                    meus_pontos[4][1],                       // Y recuado
                    3.0                                      // Em cima da base laranja
                ])
                cube([
                    LARGURA_BRACO,
                    meus_pontos[6][1] - meus_pontos[4][1],   // Profundidade Y
                    meus_pontos[5][2] - 3.0                  // Altura Z
                ]);
            }
            
            // Furo do Parafuso da Garra
            translate([hole_x, meus_pontos[4][1] - 1.0, 7.0])
                rotate([-90, 0, 0])
                cylinder(h = 10.0, r = 2.0, $fn=60);
        }
    }

translate([0, 100, 0]) {
    
    // 1. BASE: BLOCO RETANGULAR PRINCIPAL
    color("blue", alpha=0.8)
    translate([meus_pontos[1][0], Y_FRONTAL, meus_pontos[1][2]]) 
        cube([
            meus_pontos[318][0] - meus_pontos[1][0], // Largura (X)
            ESPESSURA,                               // Profundidade (Y)
            meus_pontos[0][2] - meus_pontos[1][2]    // Altura (Z)
        ]);

    // Instanciando o Braço Esquerdo (Ancorado no X do Ponto 1)
    // Furo na esquerda: 7.0mm da borda esquerda
    translate([meus_pontos[1][0], 0, 0]) braco(7.0);

    // Instanciando o Braço Direito (Ancorado no X do Ponto 216)
    // Furo na direita: 7.0mm da borda direita (LARGURA_BRACO - 7.0)
    translate([meus_pontos[216][0], 0, 0]) braco(LARGURA_BRACO - 7.0);

    // 4. Torre Triangular (Com o buraco vazado!)
    difference() {
        
        // A TORRE SÓLIDA (Construída com 'hull' para garantir malha perfeita livre de bugs!)
        color("steelblue", alpha=0.8)
        hull() {
            // Base da Torre (Retângulo maciço de 5mm de espessura)
            translate([meus_pontos[2][0], Y_FRONTAL, meus_pontos[2][2]])
                cube([
                    meus_pontos[319][0] - meus_pontos[2][0], // Largura X
                    ESPESSURA,                               // Profundidade Y (5.0mm)
                    0.01                                     // Altura Z (Quase zero)
                ]);
                
            // Topo da Torre (Linha de 3mm de espessura no cume)
            translate([meus_pontos[165][0] - 0.005, Y_TRASEIRO - 3.0, meus_pontos[165][2]])
                cube([
                    0.01,                                    // Largura X (Ponto central)
                    3.0,                                     // Profundidade Y (3.0mm)
                    0.01                                     // Altura Z
                ]);
        }

        // O BURACO DO VÃO CENTRAL (Usando os novos pontos: 162, 105, 219)
        // Usamos linear_extrude porque polígonos 2D extrudados NUNCA dão erro de geometria manifold no OpenSCAD.
        translate([0, Y_TRASEIRO + 2.0, 0])
        rotate([90, 0, 0])
        linear_extrude(height = ESPESSURA + 4.0) { // +4.0 de espessura de corte (sobra 2mm pra frente e 2mm pra trás)
            polygon(points=[
                [meus_pontos[105][0], 8.0], // Esq Base (Aprofundado para Z=8 para varar o chão sem Z-fighting)
                [meus_pontos[219][0], 8.0], // Dir Base (Aprofundado para Z=8)
                [meus_pontos[162][0], meus_pontos[162][2]] // Topo (Cume do buraco)
            ]);
        }
        
        // FURO DO PARAFUSO DA LUMINÁRIA (Topo)
        translate([meus_pontos[165][0], Y_FRONTAL - 1.0, 83.0])
            rotate([-90, 0, 0])
            cylinder(h = ESPESSURA + 5.0, r = 2.5, $fn=60);
    }

}
